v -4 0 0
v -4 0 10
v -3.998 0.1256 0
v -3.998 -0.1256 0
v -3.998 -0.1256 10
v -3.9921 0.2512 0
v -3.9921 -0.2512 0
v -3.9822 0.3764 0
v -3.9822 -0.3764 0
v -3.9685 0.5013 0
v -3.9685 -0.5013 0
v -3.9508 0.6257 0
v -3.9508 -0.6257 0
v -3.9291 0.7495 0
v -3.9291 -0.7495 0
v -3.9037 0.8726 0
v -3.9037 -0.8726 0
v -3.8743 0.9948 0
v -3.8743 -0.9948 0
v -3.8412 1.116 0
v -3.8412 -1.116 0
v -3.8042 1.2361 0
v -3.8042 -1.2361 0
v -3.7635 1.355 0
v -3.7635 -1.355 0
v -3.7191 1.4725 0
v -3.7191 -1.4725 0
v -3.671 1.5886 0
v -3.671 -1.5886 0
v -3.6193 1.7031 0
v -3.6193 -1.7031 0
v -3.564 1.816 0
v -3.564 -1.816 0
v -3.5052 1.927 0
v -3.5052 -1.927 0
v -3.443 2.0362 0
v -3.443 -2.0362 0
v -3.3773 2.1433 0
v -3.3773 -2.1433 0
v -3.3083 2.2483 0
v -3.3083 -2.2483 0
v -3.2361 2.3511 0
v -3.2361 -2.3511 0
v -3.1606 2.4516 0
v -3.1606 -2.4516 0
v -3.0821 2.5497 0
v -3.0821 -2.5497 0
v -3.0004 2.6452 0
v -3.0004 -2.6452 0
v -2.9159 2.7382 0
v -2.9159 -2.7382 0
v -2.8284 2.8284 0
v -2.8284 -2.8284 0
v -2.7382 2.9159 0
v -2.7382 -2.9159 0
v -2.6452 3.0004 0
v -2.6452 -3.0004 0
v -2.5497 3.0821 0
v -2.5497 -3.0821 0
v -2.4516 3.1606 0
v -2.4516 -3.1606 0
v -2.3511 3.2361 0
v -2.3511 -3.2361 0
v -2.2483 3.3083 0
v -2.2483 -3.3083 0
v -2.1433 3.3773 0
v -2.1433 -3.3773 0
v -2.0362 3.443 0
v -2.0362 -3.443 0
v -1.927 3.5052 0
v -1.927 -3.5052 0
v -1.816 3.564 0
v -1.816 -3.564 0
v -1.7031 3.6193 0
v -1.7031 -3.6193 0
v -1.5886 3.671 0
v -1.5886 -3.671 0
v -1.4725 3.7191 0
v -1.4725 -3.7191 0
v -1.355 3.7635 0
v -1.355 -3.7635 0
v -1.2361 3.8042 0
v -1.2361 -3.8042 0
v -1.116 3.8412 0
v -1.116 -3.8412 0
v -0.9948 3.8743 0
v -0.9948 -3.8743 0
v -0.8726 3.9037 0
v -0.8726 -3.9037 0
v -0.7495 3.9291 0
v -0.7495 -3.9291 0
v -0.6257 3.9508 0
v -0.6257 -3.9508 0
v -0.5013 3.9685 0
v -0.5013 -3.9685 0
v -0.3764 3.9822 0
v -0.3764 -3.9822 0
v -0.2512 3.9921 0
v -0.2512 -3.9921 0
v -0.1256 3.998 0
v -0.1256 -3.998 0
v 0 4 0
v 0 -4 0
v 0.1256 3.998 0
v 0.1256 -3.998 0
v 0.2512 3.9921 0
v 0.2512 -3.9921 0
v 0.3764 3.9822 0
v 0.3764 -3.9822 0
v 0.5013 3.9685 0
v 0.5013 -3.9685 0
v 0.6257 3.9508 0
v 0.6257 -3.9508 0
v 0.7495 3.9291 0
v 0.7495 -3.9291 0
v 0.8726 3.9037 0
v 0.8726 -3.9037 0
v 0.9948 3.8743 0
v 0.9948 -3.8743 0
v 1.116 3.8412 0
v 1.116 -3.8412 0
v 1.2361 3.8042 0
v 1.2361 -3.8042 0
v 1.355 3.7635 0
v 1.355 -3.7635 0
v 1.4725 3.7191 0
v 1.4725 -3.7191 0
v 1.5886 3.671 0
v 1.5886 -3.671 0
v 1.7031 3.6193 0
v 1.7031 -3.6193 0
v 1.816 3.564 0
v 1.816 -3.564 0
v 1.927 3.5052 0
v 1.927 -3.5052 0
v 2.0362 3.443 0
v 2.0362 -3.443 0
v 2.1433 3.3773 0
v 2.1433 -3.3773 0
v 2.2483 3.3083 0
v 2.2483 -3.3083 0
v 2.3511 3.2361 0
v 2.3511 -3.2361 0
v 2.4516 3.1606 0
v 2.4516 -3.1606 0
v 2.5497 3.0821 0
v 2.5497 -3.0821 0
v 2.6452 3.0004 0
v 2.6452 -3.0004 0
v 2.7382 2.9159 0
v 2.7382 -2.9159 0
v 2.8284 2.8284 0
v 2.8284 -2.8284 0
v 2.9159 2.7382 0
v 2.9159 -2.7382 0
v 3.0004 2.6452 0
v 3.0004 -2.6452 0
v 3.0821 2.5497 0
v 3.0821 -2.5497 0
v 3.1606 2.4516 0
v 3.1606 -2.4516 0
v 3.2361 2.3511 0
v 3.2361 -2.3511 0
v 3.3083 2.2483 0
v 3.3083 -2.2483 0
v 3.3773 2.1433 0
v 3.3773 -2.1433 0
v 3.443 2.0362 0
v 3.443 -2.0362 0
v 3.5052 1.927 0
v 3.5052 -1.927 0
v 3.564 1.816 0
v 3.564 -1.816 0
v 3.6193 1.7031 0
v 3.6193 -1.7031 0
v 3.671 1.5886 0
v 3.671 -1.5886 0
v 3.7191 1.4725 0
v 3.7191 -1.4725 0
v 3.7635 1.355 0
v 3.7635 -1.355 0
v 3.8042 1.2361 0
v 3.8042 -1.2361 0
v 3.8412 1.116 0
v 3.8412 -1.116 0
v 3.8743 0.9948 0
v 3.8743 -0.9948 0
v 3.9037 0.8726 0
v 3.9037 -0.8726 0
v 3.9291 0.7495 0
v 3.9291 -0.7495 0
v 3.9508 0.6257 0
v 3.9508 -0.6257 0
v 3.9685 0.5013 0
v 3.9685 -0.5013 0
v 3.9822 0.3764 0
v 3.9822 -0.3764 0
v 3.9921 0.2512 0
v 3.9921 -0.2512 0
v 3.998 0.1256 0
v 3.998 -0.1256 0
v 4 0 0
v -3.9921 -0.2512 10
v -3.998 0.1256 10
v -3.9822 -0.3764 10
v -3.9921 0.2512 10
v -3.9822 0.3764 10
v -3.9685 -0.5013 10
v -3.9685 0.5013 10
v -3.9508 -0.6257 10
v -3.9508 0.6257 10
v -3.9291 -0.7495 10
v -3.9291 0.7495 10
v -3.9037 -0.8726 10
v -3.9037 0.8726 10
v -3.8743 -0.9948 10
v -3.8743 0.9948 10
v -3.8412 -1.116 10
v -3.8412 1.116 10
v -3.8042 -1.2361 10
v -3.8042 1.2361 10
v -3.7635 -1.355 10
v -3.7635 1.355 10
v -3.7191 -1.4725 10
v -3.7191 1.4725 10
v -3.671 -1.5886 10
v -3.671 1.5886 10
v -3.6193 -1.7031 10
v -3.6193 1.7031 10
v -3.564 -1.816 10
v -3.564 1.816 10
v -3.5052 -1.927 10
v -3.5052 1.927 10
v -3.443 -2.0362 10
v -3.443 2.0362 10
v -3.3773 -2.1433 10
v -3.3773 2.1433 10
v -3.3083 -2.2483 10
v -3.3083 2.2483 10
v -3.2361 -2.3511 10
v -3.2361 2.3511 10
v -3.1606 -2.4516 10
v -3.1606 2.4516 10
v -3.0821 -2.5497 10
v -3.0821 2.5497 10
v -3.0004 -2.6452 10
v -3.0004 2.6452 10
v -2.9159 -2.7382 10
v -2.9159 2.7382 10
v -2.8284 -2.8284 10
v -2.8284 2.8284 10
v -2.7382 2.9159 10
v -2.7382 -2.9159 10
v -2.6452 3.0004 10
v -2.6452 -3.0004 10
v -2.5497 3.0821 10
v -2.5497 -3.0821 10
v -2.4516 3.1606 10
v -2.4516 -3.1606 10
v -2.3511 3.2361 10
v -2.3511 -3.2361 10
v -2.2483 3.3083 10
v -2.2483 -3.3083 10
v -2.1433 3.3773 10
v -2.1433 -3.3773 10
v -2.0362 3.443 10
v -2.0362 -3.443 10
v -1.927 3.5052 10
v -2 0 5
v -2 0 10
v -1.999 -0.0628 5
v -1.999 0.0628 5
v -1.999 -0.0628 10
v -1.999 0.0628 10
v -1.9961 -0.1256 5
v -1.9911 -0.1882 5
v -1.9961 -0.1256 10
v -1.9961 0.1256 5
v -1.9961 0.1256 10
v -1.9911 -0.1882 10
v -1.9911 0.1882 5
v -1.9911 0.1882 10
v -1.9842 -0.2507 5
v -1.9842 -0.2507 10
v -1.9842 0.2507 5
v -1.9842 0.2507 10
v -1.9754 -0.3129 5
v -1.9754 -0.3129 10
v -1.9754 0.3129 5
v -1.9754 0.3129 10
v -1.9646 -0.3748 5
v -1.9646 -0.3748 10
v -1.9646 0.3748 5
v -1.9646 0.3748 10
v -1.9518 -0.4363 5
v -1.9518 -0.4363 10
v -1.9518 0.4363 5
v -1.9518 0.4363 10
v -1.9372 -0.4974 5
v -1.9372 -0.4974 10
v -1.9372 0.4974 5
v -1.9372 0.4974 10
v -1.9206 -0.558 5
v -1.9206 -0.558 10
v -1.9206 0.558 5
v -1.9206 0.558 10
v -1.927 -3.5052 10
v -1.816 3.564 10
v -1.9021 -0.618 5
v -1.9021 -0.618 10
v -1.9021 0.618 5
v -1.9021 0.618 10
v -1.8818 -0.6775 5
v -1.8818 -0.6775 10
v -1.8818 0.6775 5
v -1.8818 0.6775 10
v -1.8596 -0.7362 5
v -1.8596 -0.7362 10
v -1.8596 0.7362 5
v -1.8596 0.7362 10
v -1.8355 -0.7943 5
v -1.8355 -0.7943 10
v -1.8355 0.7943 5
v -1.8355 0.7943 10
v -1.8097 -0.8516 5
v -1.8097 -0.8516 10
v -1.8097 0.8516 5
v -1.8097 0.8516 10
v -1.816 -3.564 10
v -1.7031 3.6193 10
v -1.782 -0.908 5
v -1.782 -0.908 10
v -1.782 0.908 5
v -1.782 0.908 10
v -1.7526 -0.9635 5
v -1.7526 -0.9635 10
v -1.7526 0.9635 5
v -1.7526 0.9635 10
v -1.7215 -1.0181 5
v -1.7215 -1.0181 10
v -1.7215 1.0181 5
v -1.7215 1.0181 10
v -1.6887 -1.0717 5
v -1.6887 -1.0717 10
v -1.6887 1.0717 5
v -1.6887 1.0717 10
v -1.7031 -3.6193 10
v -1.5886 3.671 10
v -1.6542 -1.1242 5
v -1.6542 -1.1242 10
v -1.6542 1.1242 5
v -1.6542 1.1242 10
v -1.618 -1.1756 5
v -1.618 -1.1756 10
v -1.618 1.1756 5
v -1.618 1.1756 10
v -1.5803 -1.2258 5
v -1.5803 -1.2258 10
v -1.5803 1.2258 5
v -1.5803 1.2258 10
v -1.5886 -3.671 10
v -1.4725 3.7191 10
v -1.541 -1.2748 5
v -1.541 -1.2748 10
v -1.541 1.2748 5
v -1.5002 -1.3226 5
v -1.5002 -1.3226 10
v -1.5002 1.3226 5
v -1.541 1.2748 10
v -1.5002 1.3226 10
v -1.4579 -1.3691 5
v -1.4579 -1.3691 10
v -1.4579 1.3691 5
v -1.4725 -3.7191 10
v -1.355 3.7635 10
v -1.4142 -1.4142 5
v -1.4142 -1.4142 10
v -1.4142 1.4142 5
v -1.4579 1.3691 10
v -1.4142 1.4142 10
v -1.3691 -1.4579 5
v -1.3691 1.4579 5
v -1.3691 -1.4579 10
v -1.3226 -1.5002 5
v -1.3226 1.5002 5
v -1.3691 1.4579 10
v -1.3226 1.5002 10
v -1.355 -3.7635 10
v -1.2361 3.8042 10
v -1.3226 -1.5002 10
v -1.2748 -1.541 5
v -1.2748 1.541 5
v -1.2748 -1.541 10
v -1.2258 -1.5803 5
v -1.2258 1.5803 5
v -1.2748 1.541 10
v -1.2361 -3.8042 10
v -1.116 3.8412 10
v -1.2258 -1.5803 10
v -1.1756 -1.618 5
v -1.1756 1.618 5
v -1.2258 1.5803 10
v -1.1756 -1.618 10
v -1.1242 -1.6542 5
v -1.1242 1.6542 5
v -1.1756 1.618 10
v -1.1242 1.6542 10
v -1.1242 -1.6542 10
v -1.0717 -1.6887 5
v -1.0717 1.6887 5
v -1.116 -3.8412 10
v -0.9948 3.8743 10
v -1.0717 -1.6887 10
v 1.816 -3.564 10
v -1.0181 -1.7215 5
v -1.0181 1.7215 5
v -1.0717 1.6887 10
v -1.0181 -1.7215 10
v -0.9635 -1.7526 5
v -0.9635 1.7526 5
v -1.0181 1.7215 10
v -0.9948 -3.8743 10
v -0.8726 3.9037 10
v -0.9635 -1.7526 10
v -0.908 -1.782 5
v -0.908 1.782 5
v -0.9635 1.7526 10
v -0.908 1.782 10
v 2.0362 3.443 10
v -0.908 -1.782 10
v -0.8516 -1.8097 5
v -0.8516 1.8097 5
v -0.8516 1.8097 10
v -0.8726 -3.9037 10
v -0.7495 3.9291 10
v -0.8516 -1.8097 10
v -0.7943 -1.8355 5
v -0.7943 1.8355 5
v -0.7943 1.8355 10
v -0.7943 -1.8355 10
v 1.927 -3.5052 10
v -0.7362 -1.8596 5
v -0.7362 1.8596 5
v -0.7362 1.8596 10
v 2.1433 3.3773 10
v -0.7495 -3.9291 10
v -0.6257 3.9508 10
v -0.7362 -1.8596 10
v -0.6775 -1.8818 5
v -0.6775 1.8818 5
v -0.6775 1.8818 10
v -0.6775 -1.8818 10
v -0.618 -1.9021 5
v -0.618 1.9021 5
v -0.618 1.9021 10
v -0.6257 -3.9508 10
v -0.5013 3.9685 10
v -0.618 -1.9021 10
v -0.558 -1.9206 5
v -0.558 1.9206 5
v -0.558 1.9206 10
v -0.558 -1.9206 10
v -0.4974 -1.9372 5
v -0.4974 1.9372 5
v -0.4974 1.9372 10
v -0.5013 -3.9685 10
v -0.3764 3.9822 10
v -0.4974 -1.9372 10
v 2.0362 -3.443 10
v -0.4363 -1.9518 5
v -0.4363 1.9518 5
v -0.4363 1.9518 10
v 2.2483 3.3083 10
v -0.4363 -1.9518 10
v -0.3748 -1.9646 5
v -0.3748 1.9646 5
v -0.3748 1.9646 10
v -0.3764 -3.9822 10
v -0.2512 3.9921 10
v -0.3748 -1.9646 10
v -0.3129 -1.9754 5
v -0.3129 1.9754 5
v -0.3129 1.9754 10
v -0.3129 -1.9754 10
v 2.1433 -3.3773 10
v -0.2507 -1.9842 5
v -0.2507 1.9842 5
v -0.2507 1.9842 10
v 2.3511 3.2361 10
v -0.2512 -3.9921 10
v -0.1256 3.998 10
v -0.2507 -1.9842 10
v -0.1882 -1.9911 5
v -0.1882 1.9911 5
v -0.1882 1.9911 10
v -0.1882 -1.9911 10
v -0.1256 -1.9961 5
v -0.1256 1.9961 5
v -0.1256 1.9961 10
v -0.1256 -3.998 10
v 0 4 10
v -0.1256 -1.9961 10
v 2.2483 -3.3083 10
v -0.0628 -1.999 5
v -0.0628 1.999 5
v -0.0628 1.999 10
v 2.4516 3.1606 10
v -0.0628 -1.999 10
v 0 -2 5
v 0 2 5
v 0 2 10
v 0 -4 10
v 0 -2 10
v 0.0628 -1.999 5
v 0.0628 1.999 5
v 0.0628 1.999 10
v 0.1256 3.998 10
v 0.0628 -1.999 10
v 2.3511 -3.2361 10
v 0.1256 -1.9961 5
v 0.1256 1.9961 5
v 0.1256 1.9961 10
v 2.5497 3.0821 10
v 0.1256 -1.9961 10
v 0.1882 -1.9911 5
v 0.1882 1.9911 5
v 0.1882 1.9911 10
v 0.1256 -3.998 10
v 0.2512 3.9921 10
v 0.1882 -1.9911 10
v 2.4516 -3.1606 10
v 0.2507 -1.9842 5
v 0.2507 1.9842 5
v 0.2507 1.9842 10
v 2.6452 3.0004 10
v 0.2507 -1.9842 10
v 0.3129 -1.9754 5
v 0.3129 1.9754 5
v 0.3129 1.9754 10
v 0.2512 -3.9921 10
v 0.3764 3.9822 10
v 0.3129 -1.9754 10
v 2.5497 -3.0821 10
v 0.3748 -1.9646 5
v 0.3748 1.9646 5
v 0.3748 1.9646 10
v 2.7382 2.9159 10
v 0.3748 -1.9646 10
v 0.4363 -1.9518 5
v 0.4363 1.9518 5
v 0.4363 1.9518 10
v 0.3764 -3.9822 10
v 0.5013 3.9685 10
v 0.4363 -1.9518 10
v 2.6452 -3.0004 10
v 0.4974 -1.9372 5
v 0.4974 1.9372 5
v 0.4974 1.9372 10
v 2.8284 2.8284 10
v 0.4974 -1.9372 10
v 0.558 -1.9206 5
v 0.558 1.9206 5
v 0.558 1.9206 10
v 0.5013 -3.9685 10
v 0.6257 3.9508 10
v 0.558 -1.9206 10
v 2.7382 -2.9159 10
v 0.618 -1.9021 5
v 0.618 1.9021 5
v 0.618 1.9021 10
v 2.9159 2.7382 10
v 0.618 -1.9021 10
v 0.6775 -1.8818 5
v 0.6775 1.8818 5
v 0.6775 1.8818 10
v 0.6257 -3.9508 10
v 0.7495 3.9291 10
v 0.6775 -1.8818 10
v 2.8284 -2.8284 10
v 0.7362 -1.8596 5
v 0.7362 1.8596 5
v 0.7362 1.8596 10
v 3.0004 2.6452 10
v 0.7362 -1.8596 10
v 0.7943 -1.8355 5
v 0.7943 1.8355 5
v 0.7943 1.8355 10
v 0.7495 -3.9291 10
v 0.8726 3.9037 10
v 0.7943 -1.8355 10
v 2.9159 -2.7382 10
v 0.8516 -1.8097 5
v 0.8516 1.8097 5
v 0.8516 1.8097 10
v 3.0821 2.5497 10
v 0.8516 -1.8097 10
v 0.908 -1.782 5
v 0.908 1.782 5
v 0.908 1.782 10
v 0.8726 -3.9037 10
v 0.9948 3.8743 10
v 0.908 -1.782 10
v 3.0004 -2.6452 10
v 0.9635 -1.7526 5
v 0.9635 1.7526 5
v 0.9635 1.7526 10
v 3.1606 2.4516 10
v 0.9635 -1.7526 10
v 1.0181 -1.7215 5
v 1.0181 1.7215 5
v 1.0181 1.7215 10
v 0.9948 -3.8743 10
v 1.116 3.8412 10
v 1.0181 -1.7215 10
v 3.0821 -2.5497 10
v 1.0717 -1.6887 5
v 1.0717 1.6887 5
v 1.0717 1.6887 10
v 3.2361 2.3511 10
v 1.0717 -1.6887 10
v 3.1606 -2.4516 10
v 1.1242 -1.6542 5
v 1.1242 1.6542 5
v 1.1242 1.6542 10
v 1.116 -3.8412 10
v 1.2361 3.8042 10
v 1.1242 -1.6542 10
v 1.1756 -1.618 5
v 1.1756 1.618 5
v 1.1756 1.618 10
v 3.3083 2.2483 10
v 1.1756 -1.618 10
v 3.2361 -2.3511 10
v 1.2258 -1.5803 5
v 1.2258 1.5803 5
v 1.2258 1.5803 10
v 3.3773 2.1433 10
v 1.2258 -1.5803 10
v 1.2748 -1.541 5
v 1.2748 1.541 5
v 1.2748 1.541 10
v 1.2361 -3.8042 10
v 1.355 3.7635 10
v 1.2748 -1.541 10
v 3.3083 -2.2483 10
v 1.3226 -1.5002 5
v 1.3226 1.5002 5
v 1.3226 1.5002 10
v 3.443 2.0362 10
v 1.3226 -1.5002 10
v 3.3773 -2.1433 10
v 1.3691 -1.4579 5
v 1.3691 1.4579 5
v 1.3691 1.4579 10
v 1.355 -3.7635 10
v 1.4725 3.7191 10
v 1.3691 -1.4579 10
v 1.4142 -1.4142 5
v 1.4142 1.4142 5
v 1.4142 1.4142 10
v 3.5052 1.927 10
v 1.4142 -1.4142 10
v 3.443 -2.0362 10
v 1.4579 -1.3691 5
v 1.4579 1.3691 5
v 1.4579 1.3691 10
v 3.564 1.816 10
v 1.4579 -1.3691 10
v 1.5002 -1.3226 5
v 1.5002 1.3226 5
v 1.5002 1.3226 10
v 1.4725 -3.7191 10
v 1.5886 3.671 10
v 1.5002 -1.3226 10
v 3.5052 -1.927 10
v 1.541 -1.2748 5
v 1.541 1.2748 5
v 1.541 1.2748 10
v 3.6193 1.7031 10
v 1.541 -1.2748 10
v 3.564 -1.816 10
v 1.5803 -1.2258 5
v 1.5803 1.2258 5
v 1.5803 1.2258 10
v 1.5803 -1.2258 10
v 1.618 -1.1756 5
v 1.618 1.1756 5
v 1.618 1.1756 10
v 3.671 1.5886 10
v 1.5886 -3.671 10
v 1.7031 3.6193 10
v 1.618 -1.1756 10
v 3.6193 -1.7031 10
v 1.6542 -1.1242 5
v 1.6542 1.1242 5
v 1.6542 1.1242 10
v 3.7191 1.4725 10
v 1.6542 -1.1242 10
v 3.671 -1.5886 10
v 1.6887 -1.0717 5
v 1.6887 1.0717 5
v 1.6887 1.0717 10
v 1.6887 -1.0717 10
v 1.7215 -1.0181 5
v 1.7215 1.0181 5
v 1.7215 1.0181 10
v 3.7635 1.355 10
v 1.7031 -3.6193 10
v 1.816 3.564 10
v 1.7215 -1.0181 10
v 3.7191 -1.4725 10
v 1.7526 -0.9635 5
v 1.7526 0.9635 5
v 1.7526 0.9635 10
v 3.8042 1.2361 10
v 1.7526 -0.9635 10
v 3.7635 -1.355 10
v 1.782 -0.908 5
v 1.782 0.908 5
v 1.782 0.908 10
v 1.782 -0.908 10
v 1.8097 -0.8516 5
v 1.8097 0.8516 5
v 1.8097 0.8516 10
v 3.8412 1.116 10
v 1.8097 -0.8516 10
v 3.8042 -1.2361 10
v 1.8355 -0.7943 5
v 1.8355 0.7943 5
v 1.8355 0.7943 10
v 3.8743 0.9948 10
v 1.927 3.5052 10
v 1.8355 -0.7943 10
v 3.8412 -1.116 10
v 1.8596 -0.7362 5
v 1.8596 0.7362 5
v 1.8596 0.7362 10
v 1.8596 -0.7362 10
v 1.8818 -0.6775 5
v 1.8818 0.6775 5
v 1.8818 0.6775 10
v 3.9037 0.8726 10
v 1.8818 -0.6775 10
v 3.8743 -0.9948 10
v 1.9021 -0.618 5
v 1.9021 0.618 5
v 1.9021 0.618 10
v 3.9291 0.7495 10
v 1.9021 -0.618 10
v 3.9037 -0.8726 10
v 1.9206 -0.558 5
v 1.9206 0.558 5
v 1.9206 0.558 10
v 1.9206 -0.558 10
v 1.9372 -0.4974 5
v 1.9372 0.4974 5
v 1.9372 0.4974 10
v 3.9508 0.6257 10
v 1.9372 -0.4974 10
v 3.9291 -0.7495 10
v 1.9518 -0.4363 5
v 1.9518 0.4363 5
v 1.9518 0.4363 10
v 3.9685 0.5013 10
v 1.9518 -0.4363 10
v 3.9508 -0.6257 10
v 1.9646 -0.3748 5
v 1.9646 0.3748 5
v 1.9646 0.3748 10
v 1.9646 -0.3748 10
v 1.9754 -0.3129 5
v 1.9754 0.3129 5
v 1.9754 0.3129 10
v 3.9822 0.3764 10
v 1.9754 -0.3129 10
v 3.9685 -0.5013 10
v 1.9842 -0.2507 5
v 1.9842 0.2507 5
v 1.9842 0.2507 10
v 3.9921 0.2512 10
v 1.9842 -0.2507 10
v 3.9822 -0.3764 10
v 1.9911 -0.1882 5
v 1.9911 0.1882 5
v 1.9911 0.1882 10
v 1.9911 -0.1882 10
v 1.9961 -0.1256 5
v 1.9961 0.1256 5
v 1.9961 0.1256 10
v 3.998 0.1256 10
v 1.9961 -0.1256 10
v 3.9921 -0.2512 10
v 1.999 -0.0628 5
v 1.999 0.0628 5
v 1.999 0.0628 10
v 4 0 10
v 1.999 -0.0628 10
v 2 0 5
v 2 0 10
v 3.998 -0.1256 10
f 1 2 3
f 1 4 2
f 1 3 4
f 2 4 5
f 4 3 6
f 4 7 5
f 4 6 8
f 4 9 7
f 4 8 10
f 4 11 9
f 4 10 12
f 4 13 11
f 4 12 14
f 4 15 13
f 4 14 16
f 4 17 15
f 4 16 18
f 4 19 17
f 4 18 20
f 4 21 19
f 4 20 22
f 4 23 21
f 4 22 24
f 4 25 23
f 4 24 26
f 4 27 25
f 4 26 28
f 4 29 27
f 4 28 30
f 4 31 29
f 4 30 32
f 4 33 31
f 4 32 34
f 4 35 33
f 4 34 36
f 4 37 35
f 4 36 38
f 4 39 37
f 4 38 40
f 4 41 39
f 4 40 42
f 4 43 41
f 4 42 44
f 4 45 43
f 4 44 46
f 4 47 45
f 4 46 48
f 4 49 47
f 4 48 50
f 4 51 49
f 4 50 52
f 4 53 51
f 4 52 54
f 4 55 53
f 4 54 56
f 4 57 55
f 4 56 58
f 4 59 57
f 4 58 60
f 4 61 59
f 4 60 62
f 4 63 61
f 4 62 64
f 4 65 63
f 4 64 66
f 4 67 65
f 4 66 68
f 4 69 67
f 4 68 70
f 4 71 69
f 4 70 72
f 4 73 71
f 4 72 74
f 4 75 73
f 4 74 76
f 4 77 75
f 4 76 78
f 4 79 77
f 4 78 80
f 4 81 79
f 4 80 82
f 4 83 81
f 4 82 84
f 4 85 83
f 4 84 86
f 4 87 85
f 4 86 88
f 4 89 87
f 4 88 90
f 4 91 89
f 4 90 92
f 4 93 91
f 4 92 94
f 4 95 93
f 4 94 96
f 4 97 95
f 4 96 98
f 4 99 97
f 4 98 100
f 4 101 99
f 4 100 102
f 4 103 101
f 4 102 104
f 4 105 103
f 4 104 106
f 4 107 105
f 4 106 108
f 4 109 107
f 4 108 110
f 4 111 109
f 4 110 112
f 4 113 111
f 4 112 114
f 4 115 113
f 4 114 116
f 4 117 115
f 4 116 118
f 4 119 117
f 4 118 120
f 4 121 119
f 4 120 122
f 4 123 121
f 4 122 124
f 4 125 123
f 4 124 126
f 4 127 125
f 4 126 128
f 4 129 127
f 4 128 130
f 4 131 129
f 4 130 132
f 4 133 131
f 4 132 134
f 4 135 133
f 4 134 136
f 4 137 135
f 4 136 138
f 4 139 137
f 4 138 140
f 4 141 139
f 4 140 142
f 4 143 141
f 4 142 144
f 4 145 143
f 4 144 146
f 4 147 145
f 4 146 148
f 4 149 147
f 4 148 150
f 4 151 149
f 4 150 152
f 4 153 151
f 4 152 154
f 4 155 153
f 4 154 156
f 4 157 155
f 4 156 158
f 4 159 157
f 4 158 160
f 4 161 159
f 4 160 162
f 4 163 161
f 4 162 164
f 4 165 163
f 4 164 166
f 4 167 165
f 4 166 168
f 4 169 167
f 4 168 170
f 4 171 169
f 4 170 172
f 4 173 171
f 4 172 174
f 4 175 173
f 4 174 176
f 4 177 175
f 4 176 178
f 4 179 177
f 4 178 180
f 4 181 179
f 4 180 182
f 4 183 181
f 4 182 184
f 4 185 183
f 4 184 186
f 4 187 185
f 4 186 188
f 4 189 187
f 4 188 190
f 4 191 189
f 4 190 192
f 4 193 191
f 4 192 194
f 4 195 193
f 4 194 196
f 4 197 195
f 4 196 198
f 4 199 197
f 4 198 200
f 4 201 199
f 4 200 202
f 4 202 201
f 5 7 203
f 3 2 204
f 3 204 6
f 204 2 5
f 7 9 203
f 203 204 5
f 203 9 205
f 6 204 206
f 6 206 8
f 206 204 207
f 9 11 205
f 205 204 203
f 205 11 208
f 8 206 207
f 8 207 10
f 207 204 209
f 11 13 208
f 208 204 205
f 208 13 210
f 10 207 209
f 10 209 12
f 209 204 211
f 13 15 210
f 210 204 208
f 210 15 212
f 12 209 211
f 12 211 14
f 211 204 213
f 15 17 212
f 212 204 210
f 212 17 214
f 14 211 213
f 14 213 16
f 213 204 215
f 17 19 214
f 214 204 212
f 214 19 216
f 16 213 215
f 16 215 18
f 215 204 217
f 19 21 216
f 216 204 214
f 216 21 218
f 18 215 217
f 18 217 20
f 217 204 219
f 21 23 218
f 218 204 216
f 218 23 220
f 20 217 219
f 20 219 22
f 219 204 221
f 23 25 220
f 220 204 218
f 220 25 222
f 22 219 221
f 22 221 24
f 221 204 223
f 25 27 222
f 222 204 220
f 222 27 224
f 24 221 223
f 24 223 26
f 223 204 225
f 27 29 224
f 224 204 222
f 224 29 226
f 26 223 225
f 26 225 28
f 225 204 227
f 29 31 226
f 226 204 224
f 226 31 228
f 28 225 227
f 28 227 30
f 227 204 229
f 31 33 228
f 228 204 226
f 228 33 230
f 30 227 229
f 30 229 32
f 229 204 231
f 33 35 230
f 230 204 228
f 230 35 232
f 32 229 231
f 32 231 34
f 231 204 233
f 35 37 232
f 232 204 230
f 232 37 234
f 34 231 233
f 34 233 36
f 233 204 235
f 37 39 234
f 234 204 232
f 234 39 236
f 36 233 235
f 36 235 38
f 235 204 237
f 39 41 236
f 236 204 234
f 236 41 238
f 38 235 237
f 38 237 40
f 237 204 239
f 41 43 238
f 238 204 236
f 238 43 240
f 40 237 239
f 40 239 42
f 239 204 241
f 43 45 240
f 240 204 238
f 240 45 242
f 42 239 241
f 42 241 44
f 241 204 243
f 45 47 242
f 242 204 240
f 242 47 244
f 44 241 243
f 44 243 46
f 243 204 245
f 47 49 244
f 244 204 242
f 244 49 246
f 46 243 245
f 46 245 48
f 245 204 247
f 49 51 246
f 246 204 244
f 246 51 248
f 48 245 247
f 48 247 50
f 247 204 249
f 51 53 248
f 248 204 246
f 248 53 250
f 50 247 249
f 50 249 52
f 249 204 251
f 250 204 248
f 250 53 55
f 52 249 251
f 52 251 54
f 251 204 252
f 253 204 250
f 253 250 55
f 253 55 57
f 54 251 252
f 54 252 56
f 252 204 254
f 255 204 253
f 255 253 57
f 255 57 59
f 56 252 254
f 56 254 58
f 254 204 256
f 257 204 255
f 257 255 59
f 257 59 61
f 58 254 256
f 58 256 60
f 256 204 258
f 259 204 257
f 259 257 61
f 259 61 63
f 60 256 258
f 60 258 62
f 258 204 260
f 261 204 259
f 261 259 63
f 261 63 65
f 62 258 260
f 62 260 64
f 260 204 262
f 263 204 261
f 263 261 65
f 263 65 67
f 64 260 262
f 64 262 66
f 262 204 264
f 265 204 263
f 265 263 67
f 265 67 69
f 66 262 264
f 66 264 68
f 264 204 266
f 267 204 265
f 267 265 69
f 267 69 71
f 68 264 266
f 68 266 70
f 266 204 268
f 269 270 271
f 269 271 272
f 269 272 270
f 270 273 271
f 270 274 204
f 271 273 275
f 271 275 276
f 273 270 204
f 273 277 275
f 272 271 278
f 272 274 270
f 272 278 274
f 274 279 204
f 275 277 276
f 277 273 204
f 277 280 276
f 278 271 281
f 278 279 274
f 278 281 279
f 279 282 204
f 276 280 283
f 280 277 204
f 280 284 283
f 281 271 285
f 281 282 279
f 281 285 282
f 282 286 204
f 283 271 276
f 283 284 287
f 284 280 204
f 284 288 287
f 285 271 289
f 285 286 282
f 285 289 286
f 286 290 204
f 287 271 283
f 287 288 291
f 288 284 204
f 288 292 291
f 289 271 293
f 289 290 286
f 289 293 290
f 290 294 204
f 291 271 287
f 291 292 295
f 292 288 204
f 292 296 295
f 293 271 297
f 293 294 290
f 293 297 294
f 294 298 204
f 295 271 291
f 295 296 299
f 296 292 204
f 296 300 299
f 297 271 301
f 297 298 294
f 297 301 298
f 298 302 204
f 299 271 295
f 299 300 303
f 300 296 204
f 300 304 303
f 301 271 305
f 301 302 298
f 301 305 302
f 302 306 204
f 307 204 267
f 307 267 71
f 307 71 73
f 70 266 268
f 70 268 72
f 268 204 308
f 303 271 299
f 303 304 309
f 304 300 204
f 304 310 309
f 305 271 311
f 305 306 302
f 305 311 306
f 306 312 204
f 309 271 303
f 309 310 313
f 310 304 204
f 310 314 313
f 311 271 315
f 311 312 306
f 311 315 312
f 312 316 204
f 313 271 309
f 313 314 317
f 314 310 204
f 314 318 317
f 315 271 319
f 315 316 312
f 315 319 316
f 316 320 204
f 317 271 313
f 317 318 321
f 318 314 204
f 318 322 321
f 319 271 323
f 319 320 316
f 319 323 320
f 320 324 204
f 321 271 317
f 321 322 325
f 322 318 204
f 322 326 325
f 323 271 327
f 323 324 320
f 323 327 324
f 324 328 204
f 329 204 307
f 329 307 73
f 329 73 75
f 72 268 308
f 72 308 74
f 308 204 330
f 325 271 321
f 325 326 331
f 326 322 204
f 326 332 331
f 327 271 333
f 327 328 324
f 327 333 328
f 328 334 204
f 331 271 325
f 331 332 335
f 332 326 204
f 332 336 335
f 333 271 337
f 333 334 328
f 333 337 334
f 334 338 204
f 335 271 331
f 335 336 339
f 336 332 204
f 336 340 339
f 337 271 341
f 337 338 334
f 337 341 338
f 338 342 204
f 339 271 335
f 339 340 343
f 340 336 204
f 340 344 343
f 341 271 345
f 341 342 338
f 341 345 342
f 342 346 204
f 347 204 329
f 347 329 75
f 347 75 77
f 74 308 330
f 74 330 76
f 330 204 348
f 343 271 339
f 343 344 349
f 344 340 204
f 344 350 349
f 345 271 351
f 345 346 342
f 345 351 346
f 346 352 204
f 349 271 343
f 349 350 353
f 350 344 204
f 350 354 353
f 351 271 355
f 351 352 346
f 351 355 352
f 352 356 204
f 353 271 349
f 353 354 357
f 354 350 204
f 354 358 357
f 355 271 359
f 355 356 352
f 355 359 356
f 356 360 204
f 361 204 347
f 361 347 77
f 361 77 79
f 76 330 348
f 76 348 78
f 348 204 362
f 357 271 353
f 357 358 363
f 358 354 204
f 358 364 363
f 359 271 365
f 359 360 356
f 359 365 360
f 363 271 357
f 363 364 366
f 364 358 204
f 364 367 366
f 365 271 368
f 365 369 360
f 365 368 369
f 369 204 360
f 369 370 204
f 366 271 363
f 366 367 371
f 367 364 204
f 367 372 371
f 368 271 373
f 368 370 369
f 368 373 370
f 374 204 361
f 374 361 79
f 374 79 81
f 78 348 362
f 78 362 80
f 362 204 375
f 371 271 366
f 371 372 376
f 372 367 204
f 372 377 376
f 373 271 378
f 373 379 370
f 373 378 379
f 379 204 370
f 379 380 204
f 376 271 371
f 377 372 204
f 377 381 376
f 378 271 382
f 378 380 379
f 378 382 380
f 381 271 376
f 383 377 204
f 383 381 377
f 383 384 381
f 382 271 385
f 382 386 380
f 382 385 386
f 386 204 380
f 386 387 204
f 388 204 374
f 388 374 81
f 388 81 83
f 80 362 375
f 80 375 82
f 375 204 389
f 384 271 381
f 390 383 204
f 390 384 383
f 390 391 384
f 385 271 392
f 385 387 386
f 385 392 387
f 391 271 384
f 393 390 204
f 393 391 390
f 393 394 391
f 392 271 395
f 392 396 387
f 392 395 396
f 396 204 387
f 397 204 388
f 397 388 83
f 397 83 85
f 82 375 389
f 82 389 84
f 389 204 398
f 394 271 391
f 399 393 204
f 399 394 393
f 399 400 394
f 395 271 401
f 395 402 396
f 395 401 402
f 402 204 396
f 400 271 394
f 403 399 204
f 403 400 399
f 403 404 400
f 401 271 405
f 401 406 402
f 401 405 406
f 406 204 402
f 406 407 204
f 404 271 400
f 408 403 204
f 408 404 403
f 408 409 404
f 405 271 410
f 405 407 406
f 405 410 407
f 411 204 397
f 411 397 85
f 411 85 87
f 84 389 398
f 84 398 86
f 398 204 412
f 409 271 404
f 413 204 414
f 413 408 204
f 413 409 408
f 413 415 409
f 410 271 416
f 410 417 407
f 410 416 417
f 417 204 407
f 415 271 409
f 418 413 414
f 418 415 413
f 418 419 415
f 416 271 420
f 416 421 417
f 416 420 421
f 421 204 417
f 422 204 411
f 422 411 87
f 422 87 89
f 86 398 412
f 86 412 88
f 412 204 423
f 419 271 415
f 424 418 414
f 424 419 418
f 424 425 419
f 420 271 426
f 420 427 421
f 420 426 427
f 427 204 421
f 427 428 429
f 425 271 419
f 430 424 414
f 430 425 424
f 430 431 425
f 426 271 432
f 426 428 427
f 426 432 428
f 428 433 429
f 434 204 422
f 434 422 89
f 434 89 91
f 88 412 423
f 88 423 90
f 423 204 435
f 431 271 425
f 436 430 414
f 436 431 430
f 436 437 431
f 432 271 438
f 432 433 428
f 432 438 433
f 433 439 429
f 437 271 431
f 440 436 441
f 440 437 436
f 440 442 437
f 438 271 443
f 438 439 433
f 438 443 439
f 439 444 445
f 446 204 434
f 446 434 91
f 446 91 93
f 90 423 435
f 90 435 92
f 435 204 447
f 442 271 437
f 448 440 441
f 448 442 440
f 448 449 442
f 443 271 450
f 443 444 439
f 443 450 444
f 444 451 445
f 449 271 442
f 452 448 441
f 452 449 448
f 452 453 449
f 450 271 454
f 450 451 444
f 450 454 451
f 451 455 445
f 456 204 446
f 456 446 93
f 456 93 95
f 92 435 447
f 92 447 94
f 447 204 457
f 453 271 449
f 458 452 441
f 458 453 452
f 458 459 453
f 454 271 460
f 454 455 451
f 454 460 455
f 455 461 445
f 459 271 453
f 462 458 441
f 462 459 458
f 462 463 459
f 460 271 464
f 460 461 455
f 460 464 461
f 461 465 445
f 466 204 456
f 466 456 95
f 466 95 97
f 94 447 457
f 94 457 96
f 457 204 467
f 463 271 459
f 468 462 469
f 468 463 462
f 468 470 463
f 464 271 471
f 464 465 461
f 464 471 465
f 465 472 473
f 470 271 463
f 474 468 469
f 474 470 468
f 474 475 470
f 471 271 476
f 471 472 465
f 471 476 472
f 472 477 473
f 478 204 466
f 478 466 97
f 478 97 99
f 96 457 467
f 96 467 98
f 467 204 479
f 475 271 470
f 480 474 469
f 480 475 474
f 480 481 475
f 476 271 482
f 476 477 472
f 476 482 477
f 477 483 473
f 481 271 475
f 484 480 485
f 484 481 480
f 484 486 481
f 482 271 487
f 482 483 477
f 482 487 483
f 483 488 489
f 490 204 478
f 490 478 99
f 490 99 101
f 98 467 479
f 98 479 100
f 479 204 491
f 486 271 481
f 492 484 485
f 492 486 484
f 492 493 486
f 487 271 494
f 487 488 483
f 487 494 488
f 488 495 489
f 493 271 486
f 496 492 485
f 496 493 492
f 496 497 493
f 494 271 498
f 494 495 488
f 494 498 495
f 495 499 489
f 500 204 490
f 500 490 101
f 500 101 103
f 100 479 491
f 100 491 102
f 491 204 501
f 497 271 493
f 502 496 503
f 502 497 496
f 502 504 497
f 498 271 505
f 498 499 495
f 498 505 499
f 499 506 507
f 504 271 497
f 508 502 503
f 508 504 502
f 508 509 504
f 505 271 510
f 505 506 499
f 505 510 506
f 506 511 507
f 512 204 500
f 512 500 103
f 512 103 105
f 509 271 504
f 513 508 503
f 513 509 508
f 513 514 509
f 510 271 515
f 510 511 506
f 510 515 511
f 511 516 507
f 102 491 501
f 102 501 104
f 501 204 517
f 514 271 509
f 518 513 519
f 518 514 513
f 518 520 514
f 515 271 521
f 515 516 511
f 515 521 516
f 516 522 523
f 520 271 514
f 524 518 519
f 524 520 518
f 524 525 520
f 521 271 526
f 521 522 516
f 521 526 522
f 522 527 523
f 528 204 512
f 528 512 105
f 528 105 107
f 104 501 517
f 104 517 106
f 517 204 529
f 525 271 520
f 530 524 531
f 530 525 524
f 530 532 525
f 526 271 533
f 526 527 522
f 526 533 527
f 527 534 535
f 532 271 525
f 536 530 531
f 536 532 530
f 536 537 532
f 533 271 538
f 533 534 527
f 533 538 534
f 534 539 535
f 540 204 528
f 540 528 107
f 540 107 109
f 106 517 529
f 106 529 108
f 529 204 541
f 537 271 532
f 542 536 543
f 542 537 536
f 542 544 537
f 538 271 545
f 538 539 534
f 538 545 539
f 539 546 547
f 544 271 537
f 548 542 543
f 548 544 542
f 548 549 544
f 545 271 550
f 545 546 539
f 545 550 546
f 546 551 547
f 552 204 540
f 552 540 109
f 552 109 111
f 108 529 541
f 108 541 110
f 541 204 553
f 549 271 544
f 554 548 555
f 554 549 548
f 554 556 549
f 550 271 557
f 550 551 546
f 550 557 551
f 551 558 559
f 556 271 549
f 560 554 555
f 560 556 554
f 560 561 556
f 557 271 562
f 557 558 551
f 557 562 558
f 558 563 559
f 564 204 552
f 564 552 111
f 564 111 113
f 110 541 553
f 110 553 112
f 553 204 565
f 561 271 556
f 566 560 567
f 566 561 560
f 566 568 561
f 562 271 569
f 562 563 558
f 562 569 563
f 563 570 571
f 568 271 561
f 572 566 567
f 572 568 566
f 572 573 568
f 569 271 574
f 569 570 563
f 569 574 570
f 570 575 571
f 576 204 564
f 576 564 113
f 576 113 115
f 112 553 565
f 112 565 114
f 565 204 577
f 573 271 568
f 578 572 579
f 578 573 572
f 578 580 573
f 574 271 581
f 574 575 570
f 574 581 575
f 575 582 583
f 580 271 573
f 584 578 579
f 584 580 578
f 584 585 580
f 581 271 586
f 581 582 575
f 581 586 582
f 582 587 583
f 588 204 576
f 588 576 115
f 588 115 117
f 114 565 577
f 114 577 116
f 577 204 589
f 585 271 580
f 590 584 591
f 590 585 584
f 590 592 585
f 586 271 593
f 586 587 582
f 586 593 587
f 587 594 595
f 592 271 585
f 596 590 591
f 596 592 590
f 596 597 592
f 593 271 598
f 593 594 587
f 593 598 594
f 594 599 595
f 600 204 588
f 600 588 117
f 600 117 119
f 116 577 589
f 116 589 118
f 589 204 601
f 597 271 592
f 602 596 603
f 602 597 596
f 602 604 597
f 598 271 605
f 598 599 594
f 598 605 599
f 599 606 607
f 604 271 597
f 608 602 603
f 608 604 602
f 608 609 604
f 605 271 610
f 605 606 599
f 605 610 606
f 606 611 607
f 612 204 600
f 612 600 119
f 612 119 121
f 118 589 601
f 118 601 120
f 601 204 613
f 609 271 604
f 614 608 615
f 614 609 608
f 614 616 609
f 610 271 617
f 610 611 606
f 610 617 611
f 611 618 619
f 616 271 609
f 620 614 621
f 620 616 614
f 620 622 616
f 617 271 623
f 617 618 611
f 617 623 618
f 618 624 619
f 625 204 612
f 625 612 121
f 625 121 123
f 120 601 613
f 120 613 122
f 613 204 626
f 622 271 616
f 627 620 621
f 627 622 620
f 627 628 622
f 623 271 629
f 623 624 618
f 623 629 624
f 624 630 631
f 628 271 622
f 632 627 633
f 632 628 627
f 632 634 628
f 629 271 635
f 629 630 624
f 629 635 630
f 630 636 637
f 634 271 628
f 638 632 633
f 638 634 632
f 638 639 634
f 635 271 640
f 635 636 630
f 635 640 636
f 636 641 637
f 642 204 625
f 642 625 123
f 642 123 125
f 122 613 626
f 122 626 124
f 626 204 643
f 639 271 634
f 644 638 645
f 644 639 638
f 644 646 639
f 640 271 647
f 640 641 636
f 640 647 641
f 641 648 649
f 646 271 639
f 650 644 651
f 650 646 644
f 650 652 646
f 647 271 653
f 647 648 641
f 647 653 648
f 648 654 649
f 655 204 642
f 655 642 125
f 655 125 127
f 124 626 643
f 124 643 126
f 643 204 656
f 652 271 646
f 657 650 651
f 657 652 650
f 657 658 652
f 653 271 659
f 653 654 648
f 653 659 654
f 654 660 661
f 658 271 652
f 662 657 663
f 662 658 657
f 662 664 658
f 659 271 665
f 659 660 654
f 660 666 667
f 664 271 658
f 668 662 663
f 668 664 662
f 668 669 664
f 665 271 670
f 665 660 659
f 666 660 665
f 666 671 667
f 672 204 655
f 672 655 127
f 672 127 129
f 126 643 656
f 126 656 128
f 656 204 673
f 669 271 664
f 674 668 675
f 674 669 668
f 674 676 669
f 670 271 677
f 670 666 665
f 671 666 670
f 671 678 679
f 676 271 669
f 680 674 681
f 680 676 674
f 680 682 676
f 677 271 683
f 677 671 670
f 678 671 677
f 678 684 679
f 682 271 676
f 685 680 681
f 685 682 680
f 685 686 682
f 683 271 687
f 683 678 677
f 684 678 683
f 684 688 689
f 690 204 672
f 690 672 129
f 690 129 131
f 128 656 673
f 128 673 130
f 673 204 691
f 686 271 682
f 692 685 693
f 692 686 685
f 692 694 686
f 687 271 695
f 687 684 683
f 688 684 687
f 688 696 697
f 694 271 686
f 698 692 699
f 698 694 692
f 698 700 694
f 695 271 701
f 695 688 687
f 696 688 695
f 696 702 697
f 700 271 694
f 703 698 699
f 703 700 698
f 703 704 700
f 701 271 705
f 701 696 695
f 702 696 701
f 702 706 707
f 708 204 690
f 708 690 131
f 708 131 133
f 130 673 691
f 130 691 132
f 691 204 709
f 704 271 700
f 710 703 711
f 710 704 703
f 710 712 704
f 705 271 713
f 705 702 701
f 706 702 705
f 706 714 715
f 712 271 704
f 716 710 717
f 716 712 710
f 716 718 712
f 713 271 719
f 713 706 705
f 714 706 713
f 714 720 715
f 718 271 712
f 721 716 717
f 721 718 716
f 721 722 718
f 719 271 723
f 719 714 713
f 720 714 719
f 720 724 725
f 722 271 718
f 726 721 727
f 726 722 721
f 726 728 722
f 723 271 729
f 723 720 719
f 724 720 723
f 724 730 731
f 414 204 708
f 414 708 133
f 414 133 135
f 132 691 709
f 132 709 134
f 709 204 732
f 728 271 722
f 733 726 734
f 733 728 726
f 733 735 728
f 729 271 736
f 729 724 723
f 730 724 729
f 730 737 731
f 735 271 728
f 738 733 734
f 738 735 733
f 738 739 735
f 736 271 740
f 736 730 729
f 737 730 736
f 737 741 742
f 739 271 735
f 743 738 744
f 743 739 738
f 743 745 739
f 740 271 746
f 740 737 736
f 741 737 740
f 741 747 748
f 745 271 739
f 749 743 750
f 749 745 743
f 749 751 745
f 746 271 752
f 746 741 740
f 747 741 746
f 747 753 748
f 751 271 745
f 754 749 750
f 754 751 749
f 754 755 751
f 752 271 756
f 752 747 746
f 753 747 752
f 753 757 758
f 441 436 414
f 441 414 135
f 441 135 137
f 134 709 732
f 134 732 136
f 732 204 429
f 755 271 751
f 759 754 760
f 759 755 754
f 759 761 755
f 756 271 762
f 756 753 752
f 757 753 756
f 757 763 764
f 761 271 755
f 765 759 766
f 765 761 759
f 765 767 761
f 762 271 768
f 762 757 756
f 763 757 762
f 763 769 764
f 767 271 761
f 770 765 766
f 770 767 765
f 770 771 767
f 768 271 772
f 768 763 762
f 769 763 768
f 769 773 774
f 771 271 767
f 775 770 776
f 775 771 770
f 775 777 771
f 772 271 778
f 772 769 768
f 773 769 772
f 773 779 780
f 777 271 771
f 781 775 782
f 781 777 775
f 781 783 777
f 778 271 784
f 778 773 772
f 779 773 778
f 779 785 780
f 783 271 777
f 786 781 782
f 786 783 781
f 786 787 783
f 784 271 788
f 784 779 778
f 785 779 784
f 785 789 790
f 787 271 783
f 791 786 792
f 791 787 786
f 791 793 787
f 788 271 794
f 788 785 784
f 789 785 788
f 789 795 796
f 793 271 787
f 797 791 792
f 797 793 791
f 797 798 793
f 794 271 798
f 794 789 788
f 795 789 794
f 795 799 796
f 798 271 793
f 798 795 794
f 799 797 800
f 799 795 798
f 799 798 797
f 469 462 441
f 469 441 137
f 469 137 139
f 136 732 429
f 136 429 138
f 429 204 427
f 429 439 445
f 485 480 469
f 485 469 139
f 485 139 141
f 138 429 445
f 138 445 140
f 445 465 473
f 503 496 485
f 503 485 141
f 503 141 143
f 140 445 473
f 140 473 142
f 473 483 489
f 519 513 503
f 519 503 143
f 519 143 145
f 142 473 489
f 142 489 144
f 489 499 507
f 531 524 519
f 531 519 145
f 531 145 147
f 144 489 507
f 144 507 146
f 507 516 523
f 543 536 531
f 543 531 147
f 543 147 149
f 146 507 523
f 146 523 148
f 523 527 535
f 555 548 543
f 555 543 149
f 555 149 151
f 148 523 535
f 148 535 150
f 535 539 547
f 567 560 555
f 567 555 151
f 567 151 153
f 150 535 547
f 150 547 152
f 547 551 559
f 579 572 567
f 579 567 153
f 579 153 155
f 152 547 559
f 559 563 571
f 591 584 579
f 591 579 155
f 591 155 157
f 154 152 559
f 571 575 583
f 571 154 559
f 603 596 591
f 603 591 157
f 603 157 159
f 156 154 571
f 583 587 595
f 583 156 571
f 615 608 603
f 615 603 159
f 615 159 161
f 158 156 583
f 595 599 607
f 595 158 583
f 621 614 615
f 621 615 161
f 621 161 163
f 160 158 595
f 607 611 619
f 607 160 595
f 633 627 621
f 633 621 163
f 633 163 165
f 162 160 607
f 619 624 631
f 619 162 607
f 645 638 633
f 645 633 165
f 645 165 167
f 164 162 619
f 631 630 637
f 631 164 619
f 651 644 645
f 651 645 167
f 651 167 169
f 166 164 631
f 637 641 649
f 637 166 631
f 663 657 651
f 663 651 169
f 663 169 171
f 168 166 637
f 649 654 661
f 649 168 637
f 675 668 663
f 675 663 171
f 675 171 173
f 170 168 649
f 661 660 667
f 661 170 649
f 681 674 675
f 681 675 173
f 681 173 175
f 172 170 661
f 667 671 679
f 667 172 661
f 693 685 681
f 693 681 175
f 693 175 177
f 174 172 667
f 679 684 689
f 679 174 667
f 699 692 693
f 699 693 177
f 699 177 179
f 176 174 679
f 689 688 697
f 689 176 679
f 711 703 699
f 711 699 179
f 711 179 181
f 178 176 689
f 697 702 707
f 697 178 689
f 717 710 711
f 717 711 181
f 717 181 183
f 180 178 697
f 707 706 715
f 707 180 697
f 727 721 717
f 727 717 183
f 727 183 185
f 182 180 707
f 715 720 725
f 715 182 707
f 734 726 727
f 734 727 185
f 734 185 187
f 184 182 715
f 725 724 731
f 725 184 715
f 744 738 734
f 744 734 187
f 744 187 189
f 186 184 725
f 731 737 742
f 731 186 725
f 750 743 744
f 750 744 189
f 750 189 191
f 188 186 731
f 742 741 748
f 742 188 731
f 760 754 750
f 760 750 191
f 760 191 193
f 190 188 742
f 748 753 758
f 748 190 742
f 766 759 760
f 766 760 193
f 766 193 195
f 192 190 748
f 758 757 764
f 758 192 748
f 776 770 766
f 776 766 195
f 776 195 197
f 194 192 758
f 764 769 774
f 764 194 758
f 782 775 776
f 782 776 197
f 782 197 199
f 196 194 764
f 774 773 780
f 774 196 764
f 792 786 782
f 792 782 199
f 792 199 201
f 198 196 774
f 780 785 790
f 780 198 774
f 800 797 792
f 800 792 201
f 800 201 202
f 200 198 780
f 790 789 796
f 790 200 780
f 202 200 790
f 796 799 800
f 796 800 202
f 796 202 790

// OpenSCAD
layer_height=0.2;
line_width=0.4;

length=10;
od=8;
id=4;

$fn=200;

difference() {
  cylinder(h=length, d=od);
  translate([0,0,length/2]) cylinder(h=length+2,d=id);
}
